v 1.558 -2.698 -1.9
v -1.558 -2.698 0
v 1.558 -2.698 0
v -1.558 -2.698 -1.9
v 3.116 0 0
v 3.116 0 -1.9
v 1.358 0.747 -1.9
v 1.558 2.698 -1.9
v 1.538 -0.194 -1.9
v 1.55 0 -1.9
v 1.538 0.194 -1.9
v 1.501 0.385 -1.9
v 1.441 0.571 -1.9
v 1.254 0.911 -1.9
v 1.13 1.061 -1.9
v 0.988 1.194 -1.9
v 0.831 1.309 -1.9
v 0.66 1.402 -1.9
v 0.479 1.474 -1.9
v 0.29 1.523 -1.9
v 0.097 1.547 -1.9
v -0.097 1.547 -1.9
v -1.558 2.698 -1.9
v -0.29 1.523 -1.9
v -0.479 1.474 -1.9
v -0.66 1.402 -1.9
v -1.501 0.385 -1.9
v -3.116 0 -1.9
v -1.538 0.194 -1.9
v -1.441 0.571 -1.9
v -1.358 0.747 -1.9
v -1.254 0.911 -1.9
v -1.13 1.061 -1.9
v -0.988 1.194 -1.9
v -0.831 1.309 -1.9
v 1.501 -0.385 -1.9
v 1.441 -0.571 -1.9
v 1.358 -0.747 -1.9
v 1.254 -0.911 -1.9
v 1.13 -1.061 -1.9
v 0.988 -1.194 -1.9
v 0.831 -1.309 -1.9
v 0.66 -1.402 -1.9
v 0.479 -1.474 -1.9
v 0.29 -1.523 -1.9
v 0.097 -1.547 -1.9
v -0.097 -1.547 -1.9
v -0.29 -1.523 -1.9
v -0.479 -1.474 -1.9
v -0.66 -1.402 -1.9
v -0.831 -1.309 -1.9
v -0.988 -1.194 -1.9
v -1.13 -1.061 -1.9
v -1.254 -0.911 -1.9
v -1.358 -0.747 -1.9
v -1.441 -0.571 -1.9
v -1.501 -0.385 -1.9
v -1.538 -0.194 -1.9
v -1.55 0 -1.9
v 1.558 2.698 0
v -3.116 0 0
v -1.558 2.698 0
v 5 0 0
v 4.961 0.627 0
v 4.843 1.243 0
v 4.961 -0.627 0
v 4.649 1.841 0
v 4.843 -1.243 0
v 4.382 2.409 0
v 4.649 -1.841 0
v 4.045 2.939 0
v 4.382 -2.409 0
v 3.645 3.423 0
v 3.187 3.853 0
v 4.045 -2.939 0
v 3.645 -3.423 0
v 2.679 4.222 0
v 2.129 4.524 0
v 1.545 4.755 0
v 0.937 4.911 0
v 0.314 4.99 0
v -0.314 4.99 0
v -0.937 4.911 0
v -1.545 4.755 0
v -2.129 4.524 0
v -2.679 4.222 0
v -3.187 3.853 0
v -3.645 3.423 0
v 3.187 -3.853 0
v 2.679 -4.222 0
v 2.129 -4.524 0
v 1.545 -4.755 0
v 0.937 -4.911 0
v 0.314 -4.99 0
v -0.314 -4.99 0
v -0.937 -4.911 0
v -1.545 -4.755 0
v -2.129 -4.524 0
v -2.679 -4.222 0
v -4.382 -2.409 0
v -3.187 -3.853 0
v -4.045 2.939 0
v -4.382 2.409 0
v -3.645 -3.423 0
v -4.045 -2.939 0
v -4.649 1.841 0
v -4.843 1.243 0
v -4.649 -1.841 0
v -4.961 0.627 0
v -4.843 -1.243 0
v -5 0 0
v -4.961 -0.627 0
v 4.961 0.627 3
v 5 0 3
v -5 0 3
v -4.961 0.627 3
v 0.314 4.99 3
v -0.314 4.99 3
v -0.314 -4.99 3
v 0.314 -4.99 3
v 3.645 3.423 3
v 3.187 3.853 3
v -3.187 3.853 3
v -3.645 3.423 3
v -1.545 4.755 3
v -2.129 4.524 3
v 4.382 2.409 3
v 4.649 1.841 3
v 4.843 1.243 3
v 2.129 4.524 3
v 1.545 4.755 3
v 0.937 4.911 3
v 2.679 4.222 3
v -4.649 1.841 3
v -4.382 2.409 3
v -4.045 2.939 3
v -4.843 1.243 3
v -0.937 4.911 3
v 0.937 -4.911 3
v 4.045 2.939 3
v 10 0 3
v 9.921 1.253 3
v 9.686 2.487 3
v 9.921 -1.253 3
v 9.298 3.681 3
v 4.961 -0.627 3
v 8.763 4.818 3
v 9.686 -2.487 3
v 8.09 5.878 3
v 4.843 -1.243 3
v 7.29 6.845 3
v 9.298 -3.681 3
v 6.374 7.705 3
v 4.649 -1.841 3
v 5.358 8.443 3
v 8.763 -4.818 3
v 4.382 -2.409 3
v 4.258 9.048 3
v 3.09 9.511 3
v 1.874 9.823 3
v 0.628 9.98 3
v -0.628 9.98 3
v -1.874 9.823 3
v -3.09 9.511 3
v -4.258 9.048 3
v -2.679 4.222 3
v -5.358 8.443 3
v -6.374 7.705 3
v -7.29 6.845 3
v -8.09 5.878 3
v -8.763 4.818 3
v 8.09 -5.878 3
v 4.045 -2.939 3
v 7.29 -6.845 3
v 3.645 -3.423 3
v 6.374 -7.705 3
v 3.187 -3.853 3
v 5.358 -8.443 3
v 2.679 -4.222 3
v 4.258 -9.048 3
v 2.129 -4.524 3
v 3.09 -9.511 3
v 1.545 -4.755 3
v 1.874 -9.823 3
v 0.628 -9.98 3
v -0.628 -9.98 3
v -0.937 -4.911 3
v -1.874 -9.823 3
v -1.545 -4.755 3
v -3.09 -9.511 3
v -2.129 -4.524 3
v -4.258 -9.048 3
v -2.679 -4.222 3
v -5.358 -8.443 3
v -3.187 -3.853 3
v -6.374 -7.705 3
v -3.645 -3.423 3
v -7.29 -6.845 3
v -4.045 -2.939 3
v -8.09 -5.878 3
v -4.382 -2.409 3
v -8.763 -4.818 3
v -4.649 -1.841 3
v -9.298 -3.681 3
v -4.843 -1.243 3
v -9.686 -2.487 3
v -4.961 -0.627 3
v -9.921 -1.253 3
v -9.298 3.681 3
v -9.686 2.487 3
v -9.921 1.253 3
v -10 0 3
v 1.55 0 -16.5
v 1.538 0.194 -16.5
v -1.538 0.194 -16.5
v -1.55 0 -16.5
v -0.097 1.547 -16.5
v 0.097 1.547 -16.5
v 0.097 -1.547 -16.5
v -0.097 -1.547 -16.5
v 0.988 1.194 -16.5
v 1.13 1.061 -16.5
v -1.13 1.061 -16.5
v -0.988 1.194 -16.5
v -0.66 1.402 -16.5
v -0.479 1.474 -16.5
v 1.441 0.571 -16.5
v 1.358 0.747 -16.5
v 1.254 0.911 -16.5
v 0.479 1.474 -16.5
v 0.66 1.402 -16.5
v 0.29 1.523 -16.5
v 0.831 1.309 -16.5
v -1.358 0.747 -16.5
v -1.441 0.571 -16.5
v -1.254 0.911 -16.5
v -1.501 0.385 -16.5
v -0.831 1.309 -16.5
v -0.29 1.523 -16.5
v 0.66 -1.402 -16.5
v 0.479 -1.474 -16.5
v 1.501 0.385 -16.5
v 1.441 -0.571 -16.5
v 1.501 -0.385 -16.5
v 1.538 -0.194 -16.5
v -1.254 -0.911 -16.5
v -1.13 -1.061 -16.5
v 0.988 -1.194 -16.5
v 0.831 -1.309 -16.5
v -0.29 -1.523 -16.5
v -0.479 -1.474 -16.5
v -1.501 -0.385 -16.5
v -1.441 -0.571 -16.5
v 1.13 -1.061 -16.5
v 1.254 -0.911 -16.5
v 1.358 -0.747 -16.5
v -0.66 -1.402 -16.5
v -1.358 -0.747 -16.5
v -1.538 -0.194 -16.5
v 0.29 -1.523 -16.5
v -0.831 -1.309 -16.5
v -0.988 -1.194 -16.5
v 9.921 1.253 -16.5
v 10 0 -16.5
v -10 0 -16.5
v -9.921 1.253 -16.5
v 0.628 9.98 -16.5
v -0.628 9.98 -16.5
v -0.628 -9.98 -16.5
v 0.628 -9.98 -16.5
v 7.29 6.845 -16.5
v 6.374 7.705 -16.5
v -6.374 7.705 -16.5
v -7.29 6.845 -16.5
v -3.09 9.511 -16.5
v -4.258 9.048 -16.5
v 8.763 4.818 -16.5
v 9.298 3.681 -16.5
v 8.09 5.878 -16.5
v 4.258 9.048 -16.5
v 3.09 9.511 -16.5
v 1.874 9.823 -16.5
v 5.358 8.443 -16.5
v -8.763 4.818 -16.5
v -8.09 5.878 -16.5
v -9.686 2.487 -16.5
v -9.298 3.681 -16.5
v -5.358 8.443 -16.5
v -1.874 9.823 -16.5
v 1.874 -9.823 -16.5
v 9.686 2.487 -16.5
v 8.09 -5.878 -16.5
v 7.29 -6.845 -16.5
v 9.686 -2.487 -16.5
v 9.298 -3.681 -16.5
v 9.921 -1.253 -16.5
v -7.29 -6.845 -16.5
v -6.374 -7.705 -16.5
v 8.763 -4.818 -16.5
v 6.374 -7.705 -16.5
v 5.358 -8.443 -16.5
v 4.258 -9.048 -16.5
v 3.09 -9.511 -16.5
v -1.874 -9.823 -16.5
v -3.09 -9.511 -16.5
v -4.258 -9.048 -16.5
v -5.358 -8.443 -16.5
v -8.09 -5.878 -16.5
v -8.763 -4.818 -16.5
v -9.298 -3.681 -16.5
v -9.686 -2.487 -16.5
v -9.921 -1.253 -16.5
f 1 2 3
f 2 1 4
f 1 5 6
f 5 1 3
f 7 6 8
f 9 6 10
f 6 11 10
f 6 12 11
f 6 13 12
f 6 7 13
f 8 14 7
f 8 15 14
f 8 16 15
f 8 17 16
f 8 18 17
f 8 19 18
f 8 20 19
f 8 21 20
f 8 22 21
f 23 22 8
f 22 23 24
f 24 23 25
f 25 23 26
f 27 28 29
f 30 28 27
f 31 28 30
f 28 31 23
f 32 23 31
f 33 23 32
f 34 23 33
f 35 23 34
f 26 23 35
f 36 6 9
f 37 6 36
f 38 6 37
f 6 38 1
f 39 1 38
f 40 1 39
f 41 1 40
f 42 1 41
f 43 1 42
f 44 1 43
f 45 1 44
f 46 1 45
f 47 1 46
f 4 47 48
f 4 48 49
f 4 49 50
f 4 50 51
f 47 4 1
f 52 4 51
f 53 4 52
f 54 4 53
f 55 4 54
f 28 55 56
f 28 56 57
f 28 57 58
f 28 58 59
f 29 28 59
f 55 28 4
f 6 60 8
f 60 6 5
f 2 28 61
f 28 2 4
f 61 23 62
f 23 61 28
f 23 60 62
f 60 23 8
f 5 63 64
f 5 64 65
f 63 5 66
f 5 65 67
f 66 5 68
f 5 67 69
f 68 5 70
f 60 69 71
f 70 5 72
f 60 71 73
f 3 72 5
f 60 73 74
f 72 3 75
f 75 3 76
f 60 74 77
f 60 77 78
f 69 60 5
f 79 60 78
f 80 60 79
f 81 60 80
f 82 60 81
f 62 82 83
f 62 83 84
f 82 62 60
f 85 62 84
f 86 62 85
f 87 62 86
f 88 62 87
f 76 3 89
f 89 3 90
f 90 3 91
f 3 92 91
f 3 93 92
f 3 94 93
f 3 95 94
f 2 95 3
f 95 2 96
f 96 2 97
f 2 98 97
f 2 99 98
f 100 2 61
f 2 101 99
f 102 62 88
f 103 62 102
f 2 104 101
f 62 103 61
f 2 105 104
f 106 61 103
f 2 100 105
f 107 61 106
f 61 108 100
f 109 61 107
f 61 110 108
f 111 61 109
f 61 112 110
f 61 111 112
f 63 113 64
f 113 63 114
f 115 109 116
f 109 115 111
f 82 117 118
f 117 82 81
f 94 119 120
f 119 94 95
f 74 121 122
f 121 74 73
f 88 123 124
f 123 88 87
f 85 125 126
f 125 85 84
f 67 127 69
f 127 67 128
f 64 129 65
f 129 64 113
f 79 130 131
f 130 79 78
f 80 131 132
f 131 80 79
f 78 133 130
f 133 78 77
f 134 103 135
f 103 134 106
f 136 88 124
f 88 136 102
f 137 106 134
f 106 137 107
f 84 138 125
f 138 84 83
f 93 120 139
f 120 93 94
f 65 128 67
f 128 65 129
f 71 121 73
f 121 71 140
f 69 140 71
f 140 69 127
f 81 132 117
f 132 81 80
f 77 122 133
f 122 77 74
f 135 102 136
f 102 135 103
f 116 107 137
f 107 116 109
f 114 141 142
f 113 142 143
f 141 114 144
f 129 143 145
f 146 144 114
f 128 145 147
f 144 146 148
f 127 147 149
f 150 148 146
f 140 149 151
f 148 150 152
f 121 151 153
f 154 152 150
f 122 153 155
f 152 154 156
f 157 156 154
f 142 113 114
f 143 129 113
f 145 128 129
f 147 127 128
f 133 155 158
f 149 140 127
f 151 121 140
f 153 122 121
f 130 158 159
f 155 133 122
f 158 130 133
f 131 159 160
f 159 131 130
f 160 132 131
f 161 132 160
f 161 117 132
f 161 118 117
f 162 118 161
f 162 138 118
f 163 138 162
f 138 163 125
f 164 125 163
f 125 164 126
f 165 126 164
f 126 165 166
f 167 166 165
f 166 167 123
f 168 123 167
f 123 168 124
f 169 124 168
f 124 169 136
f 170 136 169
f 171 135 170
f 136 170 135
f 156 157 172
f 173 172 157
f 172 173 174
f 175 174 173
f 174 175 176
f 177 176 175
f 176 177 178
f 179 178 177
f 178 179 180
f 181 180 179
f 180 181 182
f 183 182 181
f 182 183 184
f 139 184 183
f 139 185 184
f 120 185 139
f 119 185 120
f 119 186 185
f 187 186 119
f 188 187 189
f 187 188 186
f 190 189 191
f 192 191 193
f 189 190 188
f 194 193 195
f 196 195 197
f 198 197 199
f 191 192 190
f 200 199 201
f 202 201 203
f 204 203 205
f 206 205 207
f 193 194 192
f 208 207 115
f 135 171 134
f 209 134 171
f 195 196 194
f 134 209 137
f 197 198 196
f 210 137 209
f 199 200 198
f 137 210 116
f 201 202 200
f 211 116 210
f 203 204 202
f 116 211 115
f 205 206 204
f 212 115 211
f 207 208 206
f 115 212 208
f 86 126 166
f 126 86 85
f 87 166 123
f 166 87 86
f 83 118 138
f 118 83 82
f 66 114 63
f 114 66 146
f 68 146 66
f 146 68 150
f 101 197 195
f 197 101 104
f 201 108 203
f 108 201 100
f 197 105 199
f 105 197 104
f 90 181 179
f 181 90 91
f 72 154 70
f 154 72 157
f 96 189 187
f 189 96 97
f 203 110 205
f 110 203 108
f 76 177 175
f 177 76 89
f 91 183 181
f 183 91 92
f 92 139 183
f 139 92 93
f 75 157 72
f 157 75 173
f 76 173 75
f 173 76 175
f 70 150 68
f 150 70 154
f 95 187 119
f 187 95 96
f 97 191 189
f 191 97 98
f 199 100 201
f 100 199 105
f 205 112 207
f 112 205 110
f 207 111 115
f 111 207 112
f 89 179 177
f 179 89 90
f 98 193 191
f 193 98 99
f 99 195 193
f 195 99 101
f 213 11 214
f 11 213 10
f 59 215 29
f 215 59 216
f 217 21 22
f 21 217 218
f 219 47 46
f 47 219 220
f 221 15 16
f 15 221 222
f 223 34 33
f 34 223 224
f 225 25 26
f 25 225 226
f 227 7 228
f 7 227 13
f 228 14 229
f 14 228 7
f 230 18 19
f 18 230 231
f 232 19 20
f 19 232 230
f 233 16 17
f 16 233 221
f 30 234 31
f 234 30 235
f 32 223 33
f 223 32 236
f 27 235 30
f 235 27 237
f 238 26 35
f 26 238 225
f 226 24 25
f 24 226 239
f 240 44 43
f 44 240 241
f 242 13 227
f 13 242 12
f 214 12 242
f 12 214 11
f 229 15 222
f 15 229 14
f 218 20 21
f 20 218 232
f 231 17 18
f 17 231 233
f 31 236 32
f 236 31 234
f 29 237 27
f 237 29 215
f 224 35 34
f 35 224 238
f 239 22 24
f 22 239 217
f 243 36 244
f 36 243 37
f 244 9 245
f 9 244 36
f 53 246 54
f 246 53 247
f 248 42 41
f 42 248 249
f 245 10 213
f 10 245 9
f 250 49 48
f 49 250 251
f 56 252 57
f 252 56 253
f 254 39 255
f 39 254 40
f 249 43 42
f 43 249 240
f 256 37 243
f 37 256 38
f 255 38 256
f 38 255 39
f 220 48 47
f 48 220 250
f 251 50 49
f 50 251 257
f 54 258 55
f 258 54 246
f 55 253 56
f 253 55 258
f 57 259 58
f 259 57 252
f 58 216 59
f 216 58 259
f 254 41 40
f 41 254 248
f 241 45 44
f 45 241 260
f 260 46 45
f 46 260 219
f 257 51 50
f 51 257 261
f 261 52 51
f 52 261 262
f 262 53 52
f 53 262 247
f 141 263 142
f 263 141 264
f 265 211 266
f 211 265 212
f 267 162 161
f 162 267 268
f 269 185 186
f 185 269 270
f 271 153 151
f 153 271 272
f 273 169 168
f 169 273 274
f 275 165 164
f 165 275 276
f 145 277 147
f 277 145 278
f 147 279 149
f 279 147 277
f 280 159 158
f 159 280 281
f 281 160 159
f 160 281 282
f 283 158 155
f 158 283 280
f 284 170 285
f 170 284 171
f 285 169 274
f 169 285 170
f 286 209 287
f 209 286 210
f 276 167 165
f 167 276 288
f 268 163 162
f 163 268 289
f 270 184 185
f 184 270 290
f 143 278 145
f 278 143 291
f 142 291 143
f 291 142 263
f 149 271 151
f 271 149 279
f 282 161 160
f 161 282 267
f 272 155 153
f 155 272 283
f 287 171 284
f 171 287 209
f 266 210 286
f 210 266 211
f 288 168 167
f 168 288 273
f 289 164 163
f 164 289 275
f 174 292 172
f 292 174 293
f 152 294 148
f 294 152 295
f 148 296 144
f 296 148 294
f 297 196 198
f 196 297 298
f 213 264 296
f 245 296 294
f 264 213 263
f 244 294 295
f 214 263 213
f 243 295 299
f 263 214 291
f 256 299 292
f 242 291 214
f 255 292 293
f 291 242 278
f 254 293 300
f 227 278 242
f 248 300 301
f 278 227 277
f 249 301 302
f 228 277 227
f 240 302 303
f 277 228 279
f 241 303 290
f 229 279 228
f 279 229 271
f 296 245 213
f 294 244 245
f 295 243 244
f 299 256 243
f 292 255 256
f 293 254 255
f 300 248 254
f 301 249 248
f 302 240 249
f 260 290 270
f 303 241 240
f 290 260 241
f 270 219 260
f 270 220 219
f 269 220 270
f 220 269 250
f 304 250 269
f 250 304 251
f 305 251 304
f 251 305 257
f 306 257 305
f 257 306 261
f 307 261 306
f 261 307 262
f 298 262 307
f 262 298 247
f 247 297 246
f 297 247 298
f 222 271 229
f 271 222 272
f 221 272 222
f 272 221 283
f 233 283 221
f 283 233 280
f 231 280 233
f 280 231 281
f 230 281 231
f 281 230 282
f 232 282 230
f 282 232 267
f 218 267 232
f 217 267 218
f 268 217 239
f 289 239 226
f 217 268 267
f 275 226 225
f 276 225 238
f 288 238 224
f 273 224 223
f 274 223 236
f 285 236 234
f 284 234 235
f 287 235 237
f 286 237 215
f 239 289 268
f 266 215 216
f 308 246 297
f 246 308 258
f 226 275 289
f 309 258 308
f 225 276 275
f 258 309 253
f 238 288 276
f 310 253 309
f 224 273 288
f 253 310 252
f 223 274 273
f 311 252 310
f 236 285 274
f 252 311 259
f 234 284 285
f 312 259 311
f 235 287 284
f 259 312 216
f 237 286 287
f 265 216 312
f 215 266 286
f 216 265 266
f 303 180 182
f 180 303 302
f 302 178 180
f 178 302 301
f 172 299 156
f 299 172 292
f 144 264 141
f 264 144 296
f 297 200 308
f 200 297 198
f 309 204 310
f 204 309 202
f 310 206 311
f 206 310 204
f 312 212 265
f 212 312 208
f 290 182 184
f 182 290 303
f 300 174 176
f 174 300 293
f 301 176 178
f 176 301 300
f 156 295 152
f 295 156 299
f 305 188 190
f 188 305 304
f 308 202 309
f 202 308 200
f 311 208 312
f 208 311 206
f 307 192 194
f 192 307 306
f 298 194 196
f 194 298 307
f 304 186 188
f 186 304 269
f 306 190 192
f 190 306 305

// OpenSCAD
$fn = 50;

difference() {
	union() {
		translate(v = [0, 0, -16.5]) {
			cylinder(h = 19.5, r = 10.0);
		}
	}
	union() {
		translate(v = [0, 0, 0]) {
			rotate(a = [0, 0, 0]) {
				difference() {
					union() {
						translate(v = [0, 0, -1.9]) {
							linear_extrude(height = 1.9) {
								polygon(points = [[3.1158, 0.0], [1.5579000000000005, 2.698361953111554], [-1.5578999999999994, 2.6983619531115544], [-3.1158, 3.815754496783323e-16], [-1.5579000000000014, -2.6983619531115535], [1.557899999999998, -2.6983619531115552]]);
							}
						}
					}
					union();
				}
			}
		}
		#cylinder(h = 3, r = 5.0);
		#translate(v = [0, 0, -100.0]) {
			cylinder(h = 200, r = 1.55);
		}
	}
}
